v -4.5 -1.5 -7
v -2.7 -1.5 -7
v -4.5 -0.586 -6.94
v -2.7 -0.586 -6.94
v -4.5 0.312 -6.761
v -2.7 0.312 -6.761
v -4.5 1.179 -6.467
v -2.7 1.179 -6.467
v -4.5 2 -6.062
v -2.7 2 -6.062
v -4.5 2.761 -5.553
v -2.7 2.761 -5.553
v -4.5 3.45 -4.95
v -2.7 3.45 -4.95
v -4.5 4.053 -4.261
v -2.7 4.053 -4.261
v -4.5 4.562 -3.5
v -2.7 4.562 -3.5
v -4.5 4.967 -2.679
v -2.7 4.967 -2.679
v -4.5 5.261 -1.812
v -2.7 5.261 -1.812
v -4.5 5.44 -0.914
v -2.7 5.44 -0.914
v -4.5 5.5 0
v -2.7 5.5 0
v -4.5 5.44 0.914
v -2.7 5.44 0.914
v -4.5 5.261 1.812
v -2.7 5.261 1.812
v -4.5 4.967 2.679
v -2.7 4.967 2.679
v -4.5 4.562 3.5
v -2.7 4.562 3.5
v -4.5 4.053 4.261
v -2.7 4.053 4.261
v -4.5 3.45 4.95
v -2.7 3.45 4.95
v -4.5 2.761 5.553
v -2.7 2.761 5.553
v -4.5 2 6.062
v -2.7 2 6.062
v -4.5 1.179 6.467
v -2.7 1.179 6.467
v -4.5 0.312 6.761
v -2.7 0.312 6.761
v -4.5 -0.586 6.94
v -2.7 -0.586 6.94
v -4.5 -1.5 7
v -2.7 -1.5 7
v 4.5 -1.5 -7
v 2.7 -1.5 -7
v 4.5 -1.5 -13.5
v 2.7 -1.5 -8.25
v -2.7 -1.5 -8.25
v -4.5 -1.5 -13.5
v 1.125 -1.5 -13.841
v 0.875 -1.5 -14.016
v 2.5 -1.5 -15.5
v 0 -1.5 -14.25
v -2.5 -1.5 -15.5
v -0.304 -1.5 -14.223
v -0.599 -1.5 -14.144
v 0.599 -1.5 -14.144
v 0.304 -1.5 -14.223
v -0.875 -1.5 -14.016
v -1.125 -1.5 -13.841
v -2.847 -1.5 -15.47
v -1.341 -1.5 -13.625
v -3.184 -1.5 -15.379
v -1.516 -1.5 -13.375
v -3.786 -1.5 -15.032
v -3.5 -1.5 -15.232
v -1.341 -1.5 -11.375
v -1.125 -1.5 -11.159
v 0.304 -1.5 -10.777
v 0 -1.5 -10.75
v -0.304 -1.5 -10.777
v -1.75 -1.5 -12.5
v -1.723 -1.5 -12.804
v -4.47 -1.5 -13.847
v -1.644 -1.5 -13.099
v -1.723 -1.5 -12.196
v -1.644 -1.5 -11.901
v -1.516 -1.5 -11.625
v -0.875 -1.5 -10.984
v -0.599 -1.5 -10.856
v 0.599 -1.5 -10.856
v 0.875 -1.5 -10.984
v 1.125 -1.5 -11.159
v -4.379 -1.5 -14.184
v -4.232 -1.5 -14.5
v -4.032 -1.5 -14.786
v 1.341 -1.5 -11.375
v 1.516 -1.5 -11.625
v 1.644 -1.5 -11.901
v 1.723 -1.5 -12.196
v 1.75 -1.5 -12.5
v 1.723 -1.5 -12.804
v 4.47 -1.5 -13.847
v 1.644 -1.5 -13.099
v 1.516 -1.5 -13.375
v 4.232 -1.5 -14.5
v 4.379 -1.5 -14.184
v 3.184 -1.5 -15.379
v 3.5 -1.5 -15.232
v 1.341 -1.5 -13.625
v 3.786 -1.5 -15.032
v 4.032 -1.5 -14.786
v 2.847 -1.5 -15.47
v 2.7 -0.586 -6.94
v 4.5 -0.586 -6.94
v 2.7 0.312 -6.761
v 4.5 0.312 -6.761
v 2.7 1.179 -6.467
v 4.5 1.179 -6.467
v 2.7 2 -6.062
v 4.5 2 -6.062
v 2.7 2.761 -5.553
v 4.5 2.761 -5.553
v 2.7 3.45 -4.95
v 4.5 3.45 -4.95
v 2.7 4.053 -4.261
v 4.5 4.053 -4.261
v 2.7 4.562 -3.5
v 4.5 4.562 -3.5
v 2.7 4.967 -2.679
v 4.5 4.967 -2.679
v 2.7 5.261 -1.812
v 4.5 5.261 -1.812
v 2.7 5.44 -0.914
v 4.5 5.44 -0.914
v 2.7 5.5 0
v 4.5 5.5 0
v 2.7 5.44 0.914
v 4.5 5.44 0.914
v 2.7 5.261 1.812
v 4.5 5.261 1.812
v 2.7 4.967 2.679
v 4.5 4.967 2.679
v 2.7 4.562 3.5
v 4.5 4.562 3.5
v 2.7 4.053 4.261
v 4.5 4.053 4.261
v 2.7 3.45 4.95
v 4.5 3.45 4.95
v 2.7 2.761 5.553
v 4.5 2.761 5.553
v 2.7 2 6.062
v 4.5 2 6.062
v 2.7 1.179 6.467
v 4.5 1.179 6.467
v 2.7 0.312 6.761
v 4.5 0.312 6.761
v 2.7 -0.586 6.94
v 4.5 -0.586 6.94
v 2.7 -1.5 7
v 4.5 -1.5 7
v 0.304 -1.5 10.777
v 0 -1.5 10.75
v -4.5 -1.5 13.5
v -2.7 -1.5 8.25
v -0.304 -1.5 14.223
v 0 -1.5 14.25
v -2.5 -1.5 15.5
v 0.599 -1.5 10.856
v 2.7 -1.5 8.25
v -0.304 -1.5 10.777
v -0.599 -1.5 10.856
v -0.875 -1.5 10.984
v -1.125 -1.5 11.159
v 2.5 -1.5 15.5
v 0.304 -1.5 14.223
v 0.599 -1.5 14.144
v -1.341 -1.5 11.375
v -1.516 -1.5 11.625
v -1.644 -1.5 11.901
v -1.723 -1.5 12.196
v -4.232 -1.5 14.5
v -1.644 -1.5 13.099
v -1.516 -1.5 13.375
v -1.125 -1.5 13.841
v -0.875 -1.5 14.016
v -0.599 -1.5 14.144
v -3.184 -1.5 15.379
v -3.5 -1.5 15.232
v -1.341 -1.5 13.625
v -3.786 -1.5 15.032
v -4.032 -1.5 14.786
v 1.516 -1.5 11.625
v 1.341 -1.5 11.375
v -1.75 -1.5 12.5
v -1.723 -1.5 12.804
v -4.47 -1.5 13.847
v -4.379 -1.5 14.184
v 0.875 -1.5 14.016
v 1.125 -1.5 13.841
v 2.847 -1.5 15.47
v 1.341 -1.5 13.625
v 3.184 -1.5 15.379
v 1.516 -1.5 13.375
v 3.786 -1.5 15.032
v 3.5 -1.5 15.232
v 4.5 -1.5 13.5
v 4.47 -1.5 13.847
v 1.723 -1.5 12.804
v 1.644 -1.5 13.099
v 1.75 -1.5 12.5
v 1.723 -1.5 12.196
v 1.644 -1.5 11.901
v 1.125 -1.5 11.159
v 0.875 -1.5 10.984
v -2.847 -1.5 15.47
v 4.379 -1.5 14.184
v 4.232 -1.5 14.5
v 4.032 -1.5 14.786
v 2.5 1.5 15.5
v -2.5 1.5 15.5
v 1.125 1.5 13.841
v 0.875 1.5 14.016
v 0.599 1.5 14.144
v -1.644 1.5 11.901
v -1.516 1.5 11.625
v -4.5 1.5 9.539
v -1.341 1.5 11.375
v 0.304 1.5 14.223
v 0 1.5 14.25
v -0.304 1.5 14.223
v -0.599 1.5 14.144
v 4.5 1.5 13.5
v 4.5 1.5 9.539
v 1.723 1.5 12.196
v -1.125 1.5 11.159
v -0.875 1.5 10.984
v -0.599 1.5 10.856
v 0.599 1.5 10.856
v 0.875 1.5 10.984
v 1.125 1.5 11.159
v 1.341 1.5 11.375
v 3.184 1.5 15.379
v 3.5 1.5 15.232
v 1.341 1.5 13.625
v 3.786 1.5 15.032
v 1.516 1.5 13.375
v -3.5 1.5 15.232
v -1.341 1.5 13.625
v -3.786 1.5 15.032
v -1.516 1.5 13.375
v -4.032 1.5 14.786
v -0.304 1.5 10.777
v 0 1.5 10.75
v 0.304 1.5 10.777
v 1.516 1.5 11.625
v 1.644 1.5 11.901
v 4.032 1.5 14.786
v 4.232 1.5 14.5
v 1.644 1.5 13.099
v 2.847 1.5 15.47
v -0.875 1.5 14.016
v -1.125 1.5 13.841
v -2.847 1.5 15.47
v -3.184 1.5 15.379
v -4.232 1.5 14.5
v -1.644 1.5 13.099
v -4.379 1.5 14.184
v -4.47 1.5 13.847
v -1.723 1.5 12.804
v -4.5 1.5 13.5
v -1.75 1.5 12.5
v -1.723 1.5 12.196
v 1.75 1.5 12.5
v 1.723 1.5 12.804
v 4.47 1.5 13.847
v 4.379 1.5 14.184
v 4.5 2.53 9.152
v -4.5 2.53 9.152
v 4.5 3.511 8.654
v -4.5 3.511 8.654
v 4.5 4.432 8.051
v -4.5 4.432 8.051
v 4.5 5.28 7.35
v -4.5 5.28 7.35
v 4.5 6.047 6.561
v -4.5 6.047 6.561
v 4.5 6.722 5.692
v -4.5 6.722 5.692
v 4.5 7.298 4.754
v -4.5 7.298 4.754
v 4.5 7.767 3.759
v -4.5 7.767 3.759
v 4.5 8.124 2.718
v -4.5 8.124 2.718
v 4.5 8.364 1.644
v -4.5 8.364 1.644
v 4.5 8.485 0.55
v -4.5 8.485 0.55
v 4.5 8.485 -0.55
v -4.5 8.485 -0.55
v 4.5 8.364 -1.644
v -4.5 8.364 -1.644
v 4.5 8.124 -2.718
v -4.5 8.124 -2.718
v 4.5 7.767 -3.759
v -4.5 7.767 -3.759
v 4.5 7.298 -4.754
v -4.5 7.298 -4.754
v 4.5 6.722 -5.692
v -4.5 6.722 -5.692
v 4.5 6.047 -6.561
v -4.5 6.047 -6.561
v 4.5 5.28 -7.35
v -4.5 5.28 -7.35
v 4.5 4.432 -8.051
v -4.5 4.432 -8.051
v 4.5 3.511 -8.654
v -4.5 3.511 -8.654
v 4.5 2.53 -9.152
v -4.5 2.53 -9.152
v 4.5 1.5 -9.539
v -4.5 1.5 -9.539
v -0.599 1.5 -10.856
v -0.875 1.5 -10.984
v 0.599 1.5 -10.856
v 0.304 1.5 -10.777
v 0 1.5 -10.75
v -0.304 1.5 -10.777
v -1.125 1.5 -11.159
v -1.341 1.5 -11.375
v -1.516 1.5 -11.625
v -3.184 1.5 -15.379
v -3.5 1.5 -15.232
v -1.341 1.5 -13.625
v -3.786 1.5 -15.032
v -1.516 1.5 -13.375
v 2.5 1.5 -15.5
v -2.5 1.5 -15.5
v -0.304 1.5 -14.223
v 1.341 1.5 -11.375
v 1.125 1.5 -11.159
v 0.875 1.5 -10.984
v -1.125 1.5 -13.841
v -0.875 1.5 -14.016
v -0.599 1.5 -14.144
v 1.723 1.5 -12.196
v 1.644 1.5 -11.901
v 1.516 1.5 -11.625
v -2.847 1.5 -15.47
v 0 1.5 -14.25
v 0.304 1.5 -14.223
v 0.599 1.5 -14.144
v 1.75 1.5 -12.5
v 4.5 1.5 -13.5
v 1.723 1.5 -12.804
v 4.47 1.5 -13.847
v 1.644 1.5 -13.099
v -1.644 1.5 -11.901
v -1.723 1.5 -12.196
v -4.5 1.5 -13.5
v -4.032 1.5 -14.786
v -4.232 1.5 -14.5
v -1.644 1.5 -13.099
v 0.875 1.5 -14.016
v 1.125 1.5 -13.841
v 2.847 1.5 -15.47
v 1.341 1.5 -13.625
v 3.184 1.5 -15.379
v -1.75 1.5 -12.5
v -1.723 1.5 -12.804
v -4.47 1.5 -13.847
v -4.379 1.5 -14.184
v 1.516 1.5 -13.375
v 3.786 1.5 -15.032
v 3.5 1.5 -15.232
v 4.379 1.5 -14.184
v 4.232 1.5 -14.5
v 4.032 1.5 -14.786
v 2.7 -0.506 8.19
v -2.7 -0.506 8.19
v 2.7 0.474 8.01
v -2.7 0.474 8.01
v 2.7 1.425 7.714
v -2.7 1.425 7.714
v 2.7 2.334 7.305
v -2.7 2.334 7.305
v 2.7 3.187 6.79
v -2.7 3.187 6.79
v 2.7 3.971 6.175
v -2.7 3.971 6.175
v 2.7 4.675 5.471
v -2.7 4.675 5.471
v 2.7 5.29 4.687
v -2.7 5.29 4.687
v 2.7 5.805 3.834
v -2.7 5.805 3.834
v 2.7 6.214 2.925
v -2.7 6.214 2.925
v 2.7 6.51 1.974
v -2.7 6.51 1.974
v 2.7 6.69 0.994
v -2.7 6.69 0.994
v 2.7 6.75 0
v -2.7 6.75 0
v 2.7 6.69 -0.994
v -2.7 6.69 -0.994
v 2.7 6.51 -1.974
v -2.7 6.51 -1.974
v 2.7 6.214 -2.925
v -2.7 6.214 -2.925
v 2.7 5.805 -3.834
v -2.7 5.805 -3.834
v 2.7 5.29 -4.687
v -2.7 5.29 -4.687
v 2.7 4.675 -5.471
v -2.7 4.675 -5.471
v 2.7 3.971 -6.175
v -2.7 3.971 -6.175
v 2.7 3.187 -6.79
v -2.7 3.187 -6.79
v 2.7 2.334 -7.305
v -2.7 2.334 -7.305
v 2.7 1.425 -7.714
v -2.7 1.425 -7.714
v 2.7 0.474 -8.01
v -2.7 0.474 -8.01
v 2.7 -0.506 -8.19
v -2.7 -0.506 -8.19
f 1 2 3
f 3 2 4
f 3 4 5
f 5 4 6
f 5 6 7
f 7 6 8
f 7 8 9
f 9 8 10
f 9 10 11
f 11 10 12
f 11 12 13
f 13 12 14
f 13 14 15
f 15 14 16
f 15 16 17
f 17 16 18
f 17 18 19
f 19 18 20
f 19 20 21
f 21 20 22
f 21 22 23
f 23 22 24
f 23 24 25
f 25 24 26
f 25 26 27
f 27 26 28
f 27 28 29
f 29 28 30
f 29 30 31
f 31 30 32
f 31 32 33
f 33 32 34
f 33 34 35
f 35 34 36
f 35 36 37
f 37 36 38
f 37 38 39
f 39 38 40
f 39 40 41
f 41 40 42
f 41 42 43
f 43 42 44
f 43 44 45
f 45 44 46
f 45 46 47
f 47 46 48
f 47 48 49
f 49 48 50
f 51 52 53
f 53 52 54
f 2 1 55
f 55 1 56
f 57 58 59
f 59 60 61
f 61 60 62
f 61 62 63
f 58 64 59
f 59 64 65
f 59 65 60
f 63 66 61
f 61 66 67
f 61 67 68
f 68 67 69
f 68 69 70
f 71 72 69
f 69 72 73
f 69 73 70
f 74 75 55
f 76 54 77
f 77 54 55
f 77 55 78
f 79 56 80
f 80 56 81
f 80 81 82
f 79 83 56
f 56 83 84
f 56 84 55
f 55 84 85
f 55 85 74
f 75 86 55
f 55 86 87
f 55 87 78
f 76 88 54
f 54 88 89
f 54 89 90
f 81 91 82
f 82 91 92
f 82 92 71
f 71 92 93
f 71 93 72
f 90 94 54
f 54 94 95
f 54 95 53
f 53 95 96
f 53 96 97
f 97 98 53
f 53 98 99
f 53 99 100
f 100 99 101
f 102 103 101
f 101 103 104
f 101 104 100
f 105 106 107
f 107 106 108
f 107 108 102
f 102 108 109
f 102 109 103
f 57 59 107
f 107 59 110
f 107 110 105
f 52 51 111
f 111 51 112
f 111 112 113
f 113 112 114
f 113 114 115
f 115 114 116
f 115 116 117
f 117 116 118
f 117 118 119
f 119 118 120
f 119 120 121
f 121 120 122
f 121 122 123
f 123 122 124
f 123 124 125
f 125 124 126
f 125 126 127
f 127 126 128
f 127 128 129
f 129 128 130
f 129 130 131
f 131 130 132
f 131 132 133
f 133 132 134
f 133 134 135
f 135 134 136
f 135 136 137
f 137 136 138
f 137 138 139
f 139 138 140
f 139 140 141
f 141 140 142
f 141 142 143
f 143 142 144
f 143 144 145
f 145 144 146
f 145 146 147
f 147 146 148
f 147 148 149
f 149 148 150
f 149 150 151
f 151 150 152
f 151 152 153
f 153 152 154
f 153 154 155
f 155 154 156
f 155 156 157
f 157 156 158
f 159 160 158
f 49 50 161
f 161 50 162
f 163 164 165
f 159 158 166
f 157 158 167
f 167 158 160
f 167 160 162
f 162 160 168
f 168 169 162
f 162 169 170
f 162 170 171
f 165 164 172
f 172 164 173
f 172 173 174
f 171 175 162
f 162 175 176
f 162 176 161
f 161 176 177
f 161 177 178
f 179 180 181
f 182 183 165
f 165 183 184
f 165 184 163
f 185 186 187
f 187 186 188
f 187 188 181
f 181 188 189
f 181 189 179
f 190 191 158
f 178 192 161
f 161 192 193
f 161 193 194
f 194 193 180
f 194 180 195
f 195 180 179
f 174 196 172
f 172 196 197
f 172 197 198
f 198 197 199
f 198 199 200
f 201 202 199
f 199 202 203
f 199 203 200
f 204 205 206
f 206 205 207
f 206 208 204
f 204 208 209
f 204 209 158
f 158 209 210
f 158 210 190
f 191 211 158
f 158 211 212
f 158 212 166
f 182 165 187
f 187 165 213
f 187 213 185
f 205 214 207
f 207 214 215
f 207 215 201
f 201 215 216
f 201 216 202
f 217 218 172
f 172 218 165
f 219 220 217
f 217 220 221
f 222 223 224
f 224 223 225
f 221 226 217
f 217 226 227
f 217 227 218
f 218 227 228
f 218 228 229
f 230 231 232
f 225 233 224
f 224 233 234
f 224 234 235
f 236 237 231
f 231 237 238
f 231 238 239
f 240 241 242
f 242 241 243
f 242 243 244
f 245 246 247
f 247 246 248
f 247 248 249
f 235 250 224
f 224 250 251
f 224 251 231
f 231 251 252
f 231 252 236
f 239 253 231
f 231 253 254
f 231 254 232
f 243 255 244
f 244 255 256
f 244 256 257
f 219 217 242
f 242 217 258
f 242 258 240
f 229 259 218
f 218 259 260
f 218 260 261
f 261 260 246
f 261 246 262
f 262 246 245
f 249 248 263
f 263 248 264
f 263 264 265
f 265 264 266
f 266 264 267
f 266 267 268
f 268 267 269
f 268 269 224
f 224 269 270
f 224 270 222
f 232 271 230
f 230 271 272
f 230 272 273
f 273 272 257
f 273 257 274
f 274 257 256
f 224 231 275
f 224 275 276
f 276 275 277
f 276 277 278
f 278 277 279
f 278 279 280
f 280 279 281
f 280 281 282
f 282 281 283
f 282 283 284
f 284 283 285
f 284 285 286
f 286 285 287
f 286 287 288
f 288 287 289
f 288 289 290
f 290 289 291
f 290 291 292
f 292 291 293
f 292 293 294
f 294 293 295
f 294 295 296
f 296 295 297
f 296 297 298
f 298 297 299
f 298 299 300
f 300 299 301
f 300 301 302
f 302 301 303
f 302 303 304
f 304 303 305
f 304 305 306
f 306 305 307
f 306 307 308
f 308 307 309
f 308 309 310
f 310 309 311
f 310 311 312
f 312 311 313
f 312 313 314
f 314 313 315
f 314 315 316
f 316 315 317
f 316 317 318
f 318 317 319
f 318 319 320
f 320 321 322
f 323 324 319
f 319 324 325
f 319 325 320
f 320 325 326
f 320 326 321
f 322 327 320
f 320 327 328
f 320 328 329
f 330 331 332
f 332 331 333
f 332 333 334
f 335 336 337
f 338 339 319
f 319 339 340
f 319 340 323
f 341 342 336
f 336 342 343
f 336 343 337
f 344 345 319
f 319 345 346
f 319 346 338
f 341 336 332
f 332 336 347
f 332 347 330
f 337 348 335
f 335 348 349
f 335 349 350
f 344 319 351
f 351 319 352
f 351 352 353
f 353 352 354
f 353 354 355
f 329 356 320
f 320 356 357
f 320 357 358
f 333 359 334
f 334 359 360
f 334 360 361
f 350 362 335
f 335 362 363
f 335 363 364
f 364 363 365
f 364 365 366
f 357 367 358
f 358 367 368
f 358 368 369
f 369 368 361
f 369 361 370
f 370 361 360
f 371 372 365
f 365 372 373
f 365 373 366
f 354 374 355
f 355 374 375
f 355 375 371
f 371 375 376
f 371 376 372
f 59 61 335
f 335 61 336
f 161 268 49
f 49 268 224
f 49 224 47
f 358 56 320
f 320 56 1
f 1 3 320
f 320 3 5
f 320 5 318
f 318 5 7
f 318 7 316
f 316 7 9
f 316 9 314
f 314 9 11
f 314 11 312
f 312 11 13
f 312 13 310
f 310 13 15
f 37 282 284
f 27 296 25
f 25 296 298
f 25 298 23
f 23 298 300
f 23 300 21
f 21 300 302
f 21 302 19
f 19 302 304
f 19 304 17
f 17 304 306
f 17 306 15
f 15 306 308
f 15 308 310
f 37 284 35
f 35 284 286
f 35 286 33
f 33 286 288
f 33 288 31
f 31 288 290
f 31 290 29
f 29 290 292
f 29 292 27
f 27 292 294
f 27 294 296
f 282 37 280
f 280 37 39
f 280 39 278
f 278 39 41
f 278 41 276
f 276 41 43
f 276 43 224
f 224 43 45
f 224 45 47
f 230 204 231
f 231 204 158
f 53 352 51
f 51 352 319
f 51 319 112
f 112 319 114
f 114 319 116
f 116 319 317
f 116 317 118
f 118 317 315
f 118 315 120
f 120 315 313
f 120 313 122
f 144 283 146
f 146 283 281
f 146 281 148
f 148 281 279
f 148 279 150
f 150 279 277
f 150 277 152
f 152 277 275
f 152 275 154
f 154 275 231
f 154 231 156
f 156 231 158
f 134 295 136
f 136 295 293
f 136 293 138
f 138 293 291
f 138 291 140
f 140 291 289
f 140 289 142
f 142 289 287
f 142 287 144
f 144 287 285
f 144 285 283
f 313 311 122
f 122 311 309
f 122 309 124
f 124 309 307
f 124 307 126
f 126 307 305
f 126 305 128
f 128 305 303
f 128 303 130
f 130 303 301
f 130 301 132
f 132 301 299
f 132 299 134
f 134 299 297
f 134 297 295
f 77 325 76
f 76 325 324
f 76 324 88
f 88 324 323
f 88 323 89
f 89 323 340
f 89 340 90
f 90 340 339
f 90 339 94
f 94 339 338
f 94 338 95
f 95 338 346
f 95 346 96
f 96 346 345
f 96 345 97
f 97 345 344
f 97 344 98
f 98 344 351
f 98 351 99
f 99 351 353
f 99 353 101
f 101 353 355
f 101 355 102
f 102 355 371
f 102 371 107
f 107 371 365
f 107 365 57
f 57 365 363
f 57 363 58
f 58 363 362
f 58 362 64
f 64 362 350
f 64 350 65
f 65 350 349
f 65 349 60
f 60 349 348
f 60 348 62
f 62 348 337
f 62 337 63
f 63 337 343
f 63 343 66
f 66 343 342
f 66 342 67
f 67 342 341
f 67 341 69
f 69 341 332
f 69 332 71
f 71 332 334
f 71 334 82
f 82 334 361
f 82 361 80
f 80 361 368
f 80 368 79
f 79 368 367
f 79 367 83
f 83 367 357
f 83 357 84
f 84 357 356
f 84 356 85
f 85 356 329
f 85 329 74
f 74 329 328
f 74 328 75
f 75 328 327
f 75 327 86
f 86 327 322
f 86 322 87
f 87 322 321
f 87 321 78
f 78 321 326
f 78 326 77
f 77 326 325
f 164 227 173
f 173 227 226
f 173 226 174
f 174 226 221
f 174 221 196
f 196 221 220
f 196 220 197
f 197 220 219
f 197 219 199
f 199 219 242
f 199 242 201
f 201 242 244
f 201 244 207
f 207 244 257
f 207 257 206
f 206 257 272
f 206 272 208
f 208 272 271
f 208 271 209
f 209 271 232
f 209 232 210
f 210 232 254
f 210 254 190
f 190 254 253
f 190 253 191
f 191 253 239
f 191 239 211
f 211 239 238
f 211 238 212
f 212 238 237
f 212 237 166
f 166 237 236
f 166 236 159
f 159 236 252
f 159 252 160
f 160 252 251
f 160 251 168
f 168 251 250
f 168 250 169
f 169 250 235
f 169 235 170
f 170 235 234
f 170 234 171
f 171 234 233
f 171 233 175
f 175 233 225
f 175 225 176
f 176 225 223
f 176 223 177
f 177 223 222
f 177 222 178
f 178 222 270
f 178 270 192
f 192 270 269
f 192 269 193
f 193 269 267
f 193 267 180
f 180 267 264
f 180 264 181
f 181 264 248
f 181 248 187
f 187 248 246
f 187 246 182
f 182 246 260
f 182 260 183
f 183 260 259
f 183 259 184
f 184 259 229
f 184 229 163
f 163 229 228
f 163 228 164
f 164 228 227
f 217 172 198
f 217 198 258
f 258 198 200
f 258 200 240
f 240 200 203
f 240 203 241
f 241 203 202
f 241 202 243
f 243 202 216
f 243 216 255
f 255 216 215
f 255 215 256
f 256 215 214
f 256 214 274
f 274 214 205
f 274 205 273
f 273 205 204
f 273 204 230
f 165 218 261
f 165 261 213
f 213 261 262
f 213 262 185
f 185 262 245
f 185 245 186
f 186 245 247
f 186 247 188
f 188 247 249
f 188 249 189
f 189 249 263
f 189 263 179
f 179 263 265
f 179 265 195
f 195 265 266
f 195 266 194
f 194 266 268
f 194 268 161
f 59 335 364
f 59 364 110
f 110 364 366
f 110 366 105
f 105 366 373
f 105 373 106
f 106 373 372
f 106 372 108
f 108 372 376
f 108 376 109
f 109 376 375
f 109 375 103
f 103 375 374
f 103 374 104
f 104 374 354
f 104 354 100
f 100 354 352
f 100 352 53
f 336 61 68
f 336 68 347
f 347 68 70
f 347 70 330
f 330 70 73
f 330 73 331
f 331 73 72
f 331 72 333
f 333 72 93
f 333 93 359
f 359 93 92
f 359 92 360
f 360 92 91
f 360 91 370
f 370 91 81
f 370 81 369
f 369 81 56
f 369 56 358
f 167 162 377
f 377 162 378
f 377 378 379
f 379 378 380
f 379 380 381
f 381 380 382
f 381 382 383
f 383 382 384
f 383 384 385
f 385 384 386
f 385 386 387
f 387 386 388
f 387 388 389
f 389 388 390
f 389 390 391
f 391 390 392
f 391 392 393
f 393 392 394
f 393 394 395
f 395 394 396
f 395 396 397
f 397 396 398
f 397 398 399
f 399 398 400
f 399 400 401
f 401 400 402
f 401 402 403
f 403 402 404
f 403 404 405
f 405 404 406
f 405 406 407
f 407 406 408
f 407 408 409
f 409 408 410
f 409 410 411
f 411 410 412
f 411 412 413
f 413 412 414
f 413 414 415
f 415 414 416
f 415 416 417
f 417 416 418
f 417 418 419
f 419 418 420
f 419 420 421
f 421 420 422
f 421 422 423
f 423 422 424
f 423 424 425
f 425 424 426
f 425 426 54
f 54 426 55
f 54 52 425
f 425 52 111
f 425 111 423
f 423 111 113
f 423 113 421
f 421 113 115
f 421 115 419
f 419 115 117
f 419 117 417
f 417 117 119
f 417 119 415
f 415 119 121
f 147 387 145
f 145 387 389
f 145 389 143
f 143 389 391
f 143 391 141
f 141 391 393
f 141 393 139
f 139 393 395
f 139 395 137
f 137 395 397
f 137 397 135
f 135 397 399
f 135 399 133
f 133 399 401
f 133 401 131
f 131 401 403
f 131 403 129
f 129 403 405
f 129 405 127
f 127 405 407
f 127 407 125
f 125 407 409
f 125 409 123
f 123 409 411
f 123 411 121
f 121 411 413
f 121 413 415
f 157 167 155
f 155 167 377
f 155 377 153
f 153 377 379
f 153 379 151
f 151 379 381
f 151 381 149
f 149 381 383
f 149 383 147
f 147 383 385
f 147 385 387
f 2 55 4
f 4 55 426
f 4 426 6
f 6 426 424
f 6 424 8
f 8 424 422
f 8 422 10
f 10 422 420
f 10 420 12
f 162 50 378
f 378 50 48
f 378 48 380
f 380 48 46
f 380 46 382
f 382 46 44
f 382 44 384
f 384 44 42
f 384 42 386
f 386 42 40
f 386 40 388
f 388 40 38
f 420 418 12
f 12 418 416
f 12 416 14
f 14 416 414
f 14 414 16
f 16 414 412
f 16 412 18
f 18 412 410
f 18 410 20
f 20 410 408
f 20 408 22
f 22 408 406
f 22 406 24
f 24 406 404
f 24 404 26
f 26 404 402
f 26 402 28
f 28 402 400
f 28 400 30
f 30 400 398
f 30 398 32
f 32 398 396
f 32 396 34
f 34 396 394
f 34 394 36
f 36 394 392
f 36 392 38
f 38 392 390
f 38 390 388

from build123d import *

# Parameters (mm, degrees)
BOSS_EXTRUDE1_DEPTH      = 4.5
BOSS_EXTRUDE1_DEPTH_BACK = 4.5
SKETCH3_R                = 1.75
CUT_EXTRUDE1_DEPTH       = 18.592612086
FILLET1_R                = 2
CUT_EXTRUDE2_DEPTH       = 2.7
CUT_EXTRUDE2_DEPTH_BACK  = 2.7
SKETCH4_R                = 8.25


with BuildPart() as part:
    # Sketch2 → Boss-Extrude1 (new, two sides: drawn at the far end of the back side and taken through both)
    with BuildSketch(Plane(origin=(0, 0, 0), x_dir=(0, 0, -1), z_dir=(1, 0, 0)).offset(-BOSS_EXTRUDE1_DEPTH_BACK)):
        with BuildLine():
            Line((9.539392014, 1.5), (15.5, 1.5))
            Line((15.5, 1.5), (15.5, -1.5))
            Line((15.5, -1.5), (7, -1.5))
            ThreePointArc((7, -1.5), (0, 5.5), (-7, -1.5))
            Line((-7, -1.5), (-15.5, -1.5))
            Line((-15.5, -1.5), (-15.5, 1.5))
            Line((-15.5, 1.5), (-9.539392014, 1.5))
            ThreePointArc((-9.539392014, 1.5), (0, 8.5), (9.539392014, 1.5))
        make_face()
    extrude(amount=BOSS_EXTRUDE1_DEPTH + BOSS_EXTRUDE1_DEPTH_BACK)

    # Sketch3 → Cut-Extrude1 (cut, through all)
    with BuildSketch(Plane(origin=(0, 1.5, 0), x_dir=(1, 0, 0), z_dir=(0, 1, 0))):
        with Locations((0, 12.5)):
            Circle(SKETCH3_R)
        with Locations((0, -12.5)):
            Circle(SKETCH3_R)
    extrude(amount=-CUT_EXTRUDE1_DEPTH, mode=Mode.SUBTRACT)

    # Fillet1
    fillet1_edges = [part.edges().sort_by_distance(p)[0] for p in [
        (4.5, 0, 15.5),
        (-4.5, 0, 15.5),
        (4.5, 0, -15.5),
        (-4.5, 0, -15.5),
    ]]
    fillet(fillet1_edges, radius=FILLET1_R)

    # Sketch4 → Cut-Extrude2 (cut, two sides: drawn at the far end of the back side and taken through both)
    with BuildSketch(Plane(origin=(0, 0, 0), x_dir=(0, 0, -1), z_dir=(1, 0, 0)).offset(-CUT_EXTRUDE2_DEPTH_BACK)):
        with Locations((0, -1.5)):
            Circle(SKETCH4_R)
    extrude(amount=CUT_EXTRUDE2_DEPTH + CUT_EXTRUDE2_DEPTH_BACK, mode=Mode.SUBTRACT)


solid = part.part
